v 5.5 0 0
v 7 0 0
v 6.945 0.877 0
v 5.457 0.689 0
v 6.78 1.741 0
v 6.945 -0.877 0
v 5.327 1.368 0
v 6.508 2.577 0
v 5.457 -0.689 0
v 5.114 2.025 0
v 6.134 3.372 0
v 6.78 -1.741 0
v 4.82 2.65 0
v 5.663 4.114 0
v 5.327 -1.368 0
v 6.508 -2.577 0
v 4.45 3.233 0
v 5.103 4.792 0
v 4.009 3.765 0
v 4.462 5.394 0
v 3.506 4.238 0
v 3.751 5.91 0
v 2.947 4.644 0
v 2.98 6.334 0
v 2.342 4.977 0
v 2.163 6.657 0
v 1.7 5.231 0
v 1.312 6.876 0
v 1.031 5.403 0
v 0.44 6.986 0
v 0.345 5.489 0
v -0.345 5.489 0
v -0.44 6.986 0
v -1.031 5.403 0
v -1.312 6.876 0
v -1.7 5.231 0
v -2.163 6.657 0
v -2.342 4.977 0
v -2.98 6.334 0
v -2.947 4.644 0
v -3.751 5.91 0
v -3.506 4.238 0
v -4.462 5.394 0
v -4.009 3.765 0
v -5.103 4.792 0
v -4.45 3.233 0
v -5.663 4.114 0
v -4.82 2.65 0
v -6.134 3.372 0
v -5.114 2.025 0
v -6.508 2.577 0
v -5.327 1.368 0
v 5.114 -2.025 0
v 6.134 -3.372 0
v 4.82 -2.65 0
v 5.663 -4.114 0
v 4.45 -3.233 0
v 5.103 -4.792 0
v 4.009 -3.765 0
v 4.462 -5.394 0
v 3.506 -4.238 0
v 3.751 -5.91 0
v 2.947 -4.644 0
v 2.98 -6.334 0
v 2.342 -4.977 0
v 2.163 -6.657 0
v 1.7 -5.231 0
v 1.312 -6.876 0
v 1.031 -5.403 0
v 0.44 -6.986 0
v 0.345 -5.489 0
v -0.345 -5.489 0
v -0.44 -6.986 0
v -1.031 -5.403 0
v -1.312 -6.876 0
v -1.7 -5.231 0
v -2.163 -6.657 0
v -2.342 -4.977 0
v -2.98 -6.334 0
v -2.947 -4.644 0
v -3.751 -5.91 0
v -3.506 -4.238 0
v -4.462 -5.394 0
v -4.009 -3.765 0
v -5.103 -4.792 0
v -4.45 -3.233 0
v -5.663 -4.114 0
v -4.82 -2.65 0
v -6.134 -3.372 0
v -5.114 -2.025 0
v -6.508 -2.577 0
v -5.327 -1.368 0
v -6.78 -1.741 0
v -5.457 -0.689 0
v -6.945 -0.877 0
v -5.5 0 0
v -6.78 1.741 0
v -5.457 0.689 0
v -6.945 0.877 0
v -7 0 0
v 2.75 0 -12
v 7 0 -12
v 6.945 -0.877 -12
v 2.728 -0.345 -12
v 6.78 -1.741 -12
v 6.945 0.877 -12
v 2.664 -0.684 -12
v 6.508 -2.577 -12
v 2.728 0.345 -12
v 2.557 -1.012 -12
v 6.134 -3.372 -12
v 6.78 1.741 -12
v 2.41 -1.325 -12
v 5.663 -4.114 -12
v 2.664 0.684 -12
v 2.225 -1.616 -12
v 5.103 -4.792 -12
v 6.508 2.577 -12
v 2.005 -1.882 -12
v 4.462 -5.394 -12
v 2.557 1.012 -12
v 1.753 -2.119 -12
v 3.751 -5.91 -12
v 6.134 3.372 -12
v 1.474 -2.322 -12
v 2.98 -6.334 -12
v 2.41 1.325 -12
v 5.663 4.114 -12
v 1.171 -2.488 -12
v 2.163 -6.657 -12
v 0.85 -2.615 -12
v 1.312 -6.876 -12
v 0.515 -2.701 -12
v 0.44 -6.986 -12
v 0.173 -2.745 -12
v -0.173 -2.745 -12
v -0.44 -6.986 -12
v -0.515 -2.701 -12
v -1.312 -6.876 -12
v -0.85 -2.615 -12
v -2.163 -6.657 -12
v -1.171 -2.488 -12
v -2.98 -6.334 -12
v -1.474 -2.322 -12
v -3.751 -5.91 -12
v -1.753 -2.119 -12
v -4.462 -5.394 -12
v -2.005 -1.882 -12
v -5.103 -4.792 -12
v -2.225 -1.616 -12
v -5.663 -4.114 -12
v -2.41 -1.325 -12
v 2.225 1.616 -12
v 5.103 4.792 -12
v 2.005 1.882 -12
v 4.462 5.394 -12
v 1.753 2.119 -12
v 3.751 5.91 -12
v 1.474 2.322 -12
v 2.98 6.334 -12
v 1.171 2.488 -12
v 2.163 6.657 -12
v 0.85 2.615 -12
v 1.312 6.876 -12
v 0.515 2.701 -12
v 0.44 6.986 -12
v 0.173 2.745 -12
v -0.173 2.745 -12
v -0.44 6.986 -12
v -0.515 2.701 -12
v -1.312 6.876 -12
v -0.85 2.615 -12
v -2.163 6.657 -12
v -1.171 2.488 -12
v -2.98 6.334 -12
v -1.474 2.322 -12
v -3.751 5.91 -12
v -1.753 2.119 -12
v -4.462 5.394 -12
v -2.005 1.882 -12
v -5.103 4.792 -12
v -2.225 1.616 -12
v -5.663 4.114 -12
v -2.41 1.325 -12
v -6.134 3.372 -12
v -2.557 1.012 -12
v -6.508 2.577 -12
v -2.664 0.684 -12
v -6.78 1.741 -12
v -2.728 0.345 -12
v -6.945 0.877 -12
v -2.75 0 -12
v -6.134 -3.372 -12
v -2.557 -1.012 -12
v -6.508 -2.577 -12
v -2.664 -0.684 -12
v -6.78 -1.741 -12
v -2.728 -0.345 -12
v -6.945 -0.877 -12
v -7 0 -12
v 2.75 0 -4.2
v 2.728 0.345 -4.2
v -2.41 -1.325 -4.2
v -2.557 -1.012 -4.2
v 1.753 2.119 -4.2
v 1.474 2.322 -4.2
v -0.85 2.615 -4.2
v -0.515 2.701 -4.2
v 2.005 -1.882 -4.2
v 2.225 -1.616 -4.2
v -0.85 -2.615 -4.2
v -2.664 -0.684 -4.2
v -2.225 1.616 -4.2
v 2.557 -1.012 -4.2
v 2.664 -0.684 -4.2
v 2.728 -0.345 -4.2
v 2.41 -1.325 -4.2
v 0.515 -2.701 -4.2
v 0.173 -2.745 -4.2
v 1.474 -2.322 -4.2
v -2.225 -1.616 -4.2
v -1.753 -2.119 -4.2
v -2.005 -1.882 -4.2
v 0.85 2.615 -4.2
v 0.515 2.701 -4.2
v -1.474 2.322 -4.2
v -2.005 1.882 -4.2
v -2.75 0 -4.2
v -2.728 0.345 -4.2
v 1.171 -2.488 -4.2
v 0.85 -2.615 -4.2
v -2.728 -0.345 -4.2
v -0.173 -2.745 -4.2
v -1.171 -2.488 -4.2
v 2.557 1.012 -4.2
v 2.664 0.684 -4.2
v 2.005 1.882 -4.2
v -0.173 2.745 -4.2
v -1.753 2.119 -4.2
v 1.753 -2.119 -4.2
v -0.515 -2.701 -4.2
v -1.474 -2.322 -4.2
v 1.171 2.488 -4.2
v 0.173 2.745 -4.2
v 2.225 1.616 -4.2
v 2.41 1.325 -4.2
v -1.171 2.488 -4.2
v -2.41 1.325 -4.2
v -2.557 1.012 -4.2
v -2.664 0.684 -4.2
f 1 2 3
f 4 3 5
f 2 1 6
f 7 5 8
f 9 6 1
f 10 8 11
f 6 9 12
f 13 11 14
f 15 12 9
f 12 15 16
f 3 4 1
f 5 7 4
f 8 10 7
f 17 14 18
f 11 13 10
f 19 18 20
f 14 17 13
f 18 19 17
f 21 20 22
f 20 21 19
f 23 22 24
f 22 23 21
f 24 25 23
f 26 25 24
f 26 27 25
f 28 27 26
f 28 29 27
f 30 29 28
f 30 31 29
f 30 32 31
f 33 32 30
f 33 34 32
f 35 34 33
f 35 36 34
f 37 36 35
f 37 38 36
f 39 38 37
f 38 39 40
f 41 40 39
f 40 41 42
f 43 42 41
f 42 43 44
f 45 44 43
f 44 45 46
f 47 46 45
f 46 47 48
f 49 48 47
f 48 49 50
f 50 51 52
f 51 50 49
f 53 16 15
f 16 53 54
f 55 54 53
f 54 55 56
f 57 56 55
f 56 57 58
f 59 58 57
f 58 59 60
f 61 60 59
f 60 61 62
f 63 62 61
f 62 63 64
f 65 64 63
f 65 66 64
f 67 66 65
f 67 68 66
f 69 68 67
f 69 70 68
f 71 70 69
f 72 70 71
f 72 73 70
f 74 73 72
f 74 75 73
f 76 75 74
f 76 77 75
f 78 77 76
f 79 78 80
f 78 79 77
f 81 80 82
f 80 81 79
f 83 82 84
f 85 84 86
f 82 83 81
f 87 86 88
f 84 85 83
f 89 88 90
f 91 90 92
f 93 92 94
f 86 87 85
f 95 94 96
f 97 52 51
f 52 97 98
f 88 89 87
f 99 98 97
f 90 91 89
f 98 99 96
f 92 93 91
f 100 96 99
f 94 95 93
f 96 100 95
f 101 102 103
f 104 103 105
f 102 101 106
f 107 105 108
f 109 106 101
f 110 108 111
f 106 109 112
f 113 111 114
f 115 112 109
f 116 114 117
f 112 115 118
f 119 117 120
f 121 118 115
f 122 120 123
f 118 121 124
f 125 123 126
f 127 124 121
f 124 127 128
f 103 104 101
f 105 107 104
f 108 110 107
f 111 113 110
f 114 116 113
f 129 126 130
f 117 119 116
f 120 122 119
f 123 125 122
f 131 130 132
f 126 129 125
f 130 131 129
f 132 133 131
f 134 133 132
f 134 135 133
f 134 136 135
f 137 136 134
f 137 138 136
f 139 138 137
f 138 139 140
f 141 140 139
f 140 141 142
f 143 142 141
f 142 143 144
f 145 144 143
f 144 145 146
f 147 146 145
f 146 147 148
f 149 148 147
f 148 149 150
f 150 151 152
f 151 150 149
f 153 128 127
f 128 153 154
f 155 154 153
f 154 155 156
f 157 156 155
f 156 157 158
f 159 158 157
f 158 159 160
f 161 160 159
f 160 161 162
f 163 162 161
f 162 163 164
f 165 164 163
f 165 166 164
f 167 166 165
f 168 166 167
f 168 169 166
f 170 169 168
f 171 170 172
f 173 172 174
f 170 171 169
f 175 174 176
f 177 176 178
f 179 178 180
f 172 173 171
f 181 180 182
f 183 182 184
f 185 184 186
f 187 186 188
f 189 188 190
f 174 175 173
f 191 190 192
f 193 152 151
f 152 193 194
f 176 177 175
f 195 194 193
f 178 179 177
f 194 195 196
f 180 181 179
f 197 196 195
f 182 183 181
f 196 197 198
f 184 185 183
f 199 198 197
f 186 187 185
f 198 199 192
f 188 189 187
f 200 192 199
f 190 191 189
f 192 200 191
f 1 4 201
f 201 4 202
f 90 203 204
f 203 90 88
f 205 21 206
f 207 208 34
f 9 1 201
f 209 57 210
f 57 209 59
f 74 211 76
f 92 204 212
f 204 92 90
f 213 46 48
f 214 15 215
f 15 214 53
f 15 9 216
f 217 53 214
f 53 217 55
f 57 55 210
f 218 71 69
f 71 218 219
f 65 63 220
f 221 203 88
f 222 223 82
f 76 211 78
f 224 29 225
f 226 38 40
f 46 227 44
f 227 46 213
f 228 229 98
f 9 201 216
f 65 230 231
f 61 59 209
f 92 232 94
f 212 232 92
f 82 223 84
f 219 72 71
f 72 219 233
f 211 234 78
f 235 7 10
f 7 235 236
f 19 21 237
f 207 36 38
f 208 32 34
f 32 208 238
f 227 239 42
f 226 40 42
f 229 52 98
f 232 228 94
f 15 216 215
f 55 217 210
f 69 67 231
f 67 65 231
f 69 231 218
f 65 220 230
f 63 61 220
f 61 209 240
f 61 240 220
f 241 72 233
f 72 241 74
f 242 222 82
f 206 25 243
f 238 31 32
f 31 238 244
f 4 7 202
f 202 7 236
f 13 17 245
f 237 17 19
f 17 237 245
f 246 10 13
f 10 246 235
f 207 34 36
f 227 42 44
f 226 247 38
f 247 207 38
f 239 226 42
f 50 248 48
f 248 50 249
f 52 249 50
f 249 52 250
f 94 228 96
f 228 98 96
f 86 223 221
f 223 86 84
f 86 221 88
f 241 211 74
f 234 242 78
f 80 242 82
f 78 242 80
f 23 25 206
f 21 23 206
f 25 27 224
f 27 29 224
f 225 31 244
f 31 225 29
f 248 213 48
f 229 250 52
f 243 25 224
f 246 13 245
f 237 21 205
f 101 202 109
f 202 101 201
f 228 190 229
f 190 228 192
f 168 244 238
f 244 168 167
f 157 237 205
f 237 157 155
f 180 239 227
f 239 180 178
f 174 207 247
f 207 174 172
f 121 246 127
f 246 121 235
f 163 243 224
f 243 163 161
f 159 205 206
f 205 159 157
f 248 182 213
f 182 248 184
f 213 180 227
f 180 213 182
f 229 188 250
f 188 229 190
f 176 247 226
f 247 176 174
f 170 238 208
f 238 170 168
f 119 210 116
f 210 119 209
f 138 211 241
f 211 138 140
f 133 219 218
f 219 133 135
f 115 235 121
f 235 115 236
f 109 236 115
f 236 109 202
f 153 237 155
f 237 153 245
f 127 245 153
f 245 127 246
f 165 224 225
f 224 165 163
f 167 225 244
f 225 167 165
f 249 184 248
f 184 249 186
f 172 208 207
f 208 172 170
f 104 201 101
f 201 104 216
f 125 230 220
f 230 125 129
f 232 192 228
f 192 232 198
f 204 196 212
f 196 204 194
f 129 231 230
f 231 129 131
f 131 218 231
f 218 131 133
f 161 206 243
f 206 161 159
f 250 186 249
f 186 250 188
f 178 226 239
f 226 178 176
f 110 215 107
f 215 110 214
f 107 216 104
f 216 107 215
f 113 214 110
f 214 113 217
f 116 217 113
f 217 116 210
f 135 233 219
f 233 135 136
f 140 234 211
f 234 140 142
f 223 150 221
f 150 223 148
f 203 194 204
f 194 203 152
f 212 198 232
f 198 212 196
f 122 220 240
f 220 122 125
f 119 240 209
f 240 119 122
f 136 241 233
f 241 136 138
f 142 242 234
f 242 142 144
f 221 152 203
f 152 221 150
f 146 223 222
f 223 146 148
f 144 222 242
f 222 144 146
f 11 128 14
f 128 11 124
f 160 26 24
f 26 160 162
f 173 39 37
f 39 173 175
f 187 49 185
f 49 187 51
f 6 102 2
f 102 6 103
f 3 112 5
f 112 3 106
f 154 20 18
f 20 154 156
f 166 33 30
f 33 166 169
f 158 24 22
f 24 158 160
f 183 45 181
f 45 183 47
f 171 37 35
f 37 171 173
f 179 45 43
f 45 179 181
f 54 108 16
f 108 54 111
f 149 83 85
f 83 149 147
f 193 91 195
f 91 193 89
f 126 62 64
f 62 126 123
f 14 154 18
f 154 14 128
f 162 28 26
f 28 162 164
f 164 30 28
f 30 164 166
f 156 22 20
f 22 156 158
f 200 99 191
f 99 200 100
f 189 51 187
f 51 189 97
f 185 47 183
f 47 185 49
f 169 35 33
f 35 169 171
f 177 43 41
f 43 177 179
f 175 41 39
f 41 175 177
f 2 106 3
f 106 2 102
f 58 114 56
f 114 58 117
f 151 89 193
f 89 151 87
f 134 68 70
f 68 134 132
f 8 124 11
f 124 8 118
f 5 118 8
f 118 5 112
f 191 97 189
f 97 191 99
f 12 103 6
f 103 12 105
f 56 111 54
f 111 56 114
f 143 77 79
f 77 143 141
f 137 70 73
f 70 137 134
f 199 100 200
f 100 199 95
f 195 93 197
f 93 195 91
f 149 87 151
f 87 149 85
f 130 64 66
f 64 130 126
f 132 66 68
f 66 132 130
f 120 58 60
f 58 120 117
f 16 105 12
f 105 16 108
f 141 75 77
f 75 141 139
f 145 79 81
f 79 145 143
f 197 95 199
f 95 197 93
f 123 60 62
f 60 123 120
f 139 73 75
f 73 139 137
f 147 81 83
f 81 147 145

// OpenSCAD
$fn = 50;


difference() {
	union() {
		translate(v = [0, 0, -12.0000000000]) {
			cylinder(h = 12, r = 7.0000000000);
		}
		cylinder(h = 0, r = 10.0000000000);
	}
	union() {
		translate(v = [0, 0, 0]) {
			rotate(a = [0, 0, 0]) {
				difference() {
					union() {
						#translate(v = [0, 0, -12.0000000000]) {
							cylinder(h = 12, r = 2.2500000000);
						}
						#translate(v = [0, 0, -4.2000000000]) {
							cylinder(h = 4.2000000000, r = 7.0000000000, r1 = 2.7500000000, r2 = 5.5000000000);
						}
						#translate(v = [0, 0, -12.0000000000]) {
							cylinder(h = 12, r = 2.7500000000);
						}
						#translate(v = [0, 0, -12.0000000000]) {
							cylinder(h = 12, r = 2.2500000000);
						}
					}
					union();
				}
			}
		}
	}
}
